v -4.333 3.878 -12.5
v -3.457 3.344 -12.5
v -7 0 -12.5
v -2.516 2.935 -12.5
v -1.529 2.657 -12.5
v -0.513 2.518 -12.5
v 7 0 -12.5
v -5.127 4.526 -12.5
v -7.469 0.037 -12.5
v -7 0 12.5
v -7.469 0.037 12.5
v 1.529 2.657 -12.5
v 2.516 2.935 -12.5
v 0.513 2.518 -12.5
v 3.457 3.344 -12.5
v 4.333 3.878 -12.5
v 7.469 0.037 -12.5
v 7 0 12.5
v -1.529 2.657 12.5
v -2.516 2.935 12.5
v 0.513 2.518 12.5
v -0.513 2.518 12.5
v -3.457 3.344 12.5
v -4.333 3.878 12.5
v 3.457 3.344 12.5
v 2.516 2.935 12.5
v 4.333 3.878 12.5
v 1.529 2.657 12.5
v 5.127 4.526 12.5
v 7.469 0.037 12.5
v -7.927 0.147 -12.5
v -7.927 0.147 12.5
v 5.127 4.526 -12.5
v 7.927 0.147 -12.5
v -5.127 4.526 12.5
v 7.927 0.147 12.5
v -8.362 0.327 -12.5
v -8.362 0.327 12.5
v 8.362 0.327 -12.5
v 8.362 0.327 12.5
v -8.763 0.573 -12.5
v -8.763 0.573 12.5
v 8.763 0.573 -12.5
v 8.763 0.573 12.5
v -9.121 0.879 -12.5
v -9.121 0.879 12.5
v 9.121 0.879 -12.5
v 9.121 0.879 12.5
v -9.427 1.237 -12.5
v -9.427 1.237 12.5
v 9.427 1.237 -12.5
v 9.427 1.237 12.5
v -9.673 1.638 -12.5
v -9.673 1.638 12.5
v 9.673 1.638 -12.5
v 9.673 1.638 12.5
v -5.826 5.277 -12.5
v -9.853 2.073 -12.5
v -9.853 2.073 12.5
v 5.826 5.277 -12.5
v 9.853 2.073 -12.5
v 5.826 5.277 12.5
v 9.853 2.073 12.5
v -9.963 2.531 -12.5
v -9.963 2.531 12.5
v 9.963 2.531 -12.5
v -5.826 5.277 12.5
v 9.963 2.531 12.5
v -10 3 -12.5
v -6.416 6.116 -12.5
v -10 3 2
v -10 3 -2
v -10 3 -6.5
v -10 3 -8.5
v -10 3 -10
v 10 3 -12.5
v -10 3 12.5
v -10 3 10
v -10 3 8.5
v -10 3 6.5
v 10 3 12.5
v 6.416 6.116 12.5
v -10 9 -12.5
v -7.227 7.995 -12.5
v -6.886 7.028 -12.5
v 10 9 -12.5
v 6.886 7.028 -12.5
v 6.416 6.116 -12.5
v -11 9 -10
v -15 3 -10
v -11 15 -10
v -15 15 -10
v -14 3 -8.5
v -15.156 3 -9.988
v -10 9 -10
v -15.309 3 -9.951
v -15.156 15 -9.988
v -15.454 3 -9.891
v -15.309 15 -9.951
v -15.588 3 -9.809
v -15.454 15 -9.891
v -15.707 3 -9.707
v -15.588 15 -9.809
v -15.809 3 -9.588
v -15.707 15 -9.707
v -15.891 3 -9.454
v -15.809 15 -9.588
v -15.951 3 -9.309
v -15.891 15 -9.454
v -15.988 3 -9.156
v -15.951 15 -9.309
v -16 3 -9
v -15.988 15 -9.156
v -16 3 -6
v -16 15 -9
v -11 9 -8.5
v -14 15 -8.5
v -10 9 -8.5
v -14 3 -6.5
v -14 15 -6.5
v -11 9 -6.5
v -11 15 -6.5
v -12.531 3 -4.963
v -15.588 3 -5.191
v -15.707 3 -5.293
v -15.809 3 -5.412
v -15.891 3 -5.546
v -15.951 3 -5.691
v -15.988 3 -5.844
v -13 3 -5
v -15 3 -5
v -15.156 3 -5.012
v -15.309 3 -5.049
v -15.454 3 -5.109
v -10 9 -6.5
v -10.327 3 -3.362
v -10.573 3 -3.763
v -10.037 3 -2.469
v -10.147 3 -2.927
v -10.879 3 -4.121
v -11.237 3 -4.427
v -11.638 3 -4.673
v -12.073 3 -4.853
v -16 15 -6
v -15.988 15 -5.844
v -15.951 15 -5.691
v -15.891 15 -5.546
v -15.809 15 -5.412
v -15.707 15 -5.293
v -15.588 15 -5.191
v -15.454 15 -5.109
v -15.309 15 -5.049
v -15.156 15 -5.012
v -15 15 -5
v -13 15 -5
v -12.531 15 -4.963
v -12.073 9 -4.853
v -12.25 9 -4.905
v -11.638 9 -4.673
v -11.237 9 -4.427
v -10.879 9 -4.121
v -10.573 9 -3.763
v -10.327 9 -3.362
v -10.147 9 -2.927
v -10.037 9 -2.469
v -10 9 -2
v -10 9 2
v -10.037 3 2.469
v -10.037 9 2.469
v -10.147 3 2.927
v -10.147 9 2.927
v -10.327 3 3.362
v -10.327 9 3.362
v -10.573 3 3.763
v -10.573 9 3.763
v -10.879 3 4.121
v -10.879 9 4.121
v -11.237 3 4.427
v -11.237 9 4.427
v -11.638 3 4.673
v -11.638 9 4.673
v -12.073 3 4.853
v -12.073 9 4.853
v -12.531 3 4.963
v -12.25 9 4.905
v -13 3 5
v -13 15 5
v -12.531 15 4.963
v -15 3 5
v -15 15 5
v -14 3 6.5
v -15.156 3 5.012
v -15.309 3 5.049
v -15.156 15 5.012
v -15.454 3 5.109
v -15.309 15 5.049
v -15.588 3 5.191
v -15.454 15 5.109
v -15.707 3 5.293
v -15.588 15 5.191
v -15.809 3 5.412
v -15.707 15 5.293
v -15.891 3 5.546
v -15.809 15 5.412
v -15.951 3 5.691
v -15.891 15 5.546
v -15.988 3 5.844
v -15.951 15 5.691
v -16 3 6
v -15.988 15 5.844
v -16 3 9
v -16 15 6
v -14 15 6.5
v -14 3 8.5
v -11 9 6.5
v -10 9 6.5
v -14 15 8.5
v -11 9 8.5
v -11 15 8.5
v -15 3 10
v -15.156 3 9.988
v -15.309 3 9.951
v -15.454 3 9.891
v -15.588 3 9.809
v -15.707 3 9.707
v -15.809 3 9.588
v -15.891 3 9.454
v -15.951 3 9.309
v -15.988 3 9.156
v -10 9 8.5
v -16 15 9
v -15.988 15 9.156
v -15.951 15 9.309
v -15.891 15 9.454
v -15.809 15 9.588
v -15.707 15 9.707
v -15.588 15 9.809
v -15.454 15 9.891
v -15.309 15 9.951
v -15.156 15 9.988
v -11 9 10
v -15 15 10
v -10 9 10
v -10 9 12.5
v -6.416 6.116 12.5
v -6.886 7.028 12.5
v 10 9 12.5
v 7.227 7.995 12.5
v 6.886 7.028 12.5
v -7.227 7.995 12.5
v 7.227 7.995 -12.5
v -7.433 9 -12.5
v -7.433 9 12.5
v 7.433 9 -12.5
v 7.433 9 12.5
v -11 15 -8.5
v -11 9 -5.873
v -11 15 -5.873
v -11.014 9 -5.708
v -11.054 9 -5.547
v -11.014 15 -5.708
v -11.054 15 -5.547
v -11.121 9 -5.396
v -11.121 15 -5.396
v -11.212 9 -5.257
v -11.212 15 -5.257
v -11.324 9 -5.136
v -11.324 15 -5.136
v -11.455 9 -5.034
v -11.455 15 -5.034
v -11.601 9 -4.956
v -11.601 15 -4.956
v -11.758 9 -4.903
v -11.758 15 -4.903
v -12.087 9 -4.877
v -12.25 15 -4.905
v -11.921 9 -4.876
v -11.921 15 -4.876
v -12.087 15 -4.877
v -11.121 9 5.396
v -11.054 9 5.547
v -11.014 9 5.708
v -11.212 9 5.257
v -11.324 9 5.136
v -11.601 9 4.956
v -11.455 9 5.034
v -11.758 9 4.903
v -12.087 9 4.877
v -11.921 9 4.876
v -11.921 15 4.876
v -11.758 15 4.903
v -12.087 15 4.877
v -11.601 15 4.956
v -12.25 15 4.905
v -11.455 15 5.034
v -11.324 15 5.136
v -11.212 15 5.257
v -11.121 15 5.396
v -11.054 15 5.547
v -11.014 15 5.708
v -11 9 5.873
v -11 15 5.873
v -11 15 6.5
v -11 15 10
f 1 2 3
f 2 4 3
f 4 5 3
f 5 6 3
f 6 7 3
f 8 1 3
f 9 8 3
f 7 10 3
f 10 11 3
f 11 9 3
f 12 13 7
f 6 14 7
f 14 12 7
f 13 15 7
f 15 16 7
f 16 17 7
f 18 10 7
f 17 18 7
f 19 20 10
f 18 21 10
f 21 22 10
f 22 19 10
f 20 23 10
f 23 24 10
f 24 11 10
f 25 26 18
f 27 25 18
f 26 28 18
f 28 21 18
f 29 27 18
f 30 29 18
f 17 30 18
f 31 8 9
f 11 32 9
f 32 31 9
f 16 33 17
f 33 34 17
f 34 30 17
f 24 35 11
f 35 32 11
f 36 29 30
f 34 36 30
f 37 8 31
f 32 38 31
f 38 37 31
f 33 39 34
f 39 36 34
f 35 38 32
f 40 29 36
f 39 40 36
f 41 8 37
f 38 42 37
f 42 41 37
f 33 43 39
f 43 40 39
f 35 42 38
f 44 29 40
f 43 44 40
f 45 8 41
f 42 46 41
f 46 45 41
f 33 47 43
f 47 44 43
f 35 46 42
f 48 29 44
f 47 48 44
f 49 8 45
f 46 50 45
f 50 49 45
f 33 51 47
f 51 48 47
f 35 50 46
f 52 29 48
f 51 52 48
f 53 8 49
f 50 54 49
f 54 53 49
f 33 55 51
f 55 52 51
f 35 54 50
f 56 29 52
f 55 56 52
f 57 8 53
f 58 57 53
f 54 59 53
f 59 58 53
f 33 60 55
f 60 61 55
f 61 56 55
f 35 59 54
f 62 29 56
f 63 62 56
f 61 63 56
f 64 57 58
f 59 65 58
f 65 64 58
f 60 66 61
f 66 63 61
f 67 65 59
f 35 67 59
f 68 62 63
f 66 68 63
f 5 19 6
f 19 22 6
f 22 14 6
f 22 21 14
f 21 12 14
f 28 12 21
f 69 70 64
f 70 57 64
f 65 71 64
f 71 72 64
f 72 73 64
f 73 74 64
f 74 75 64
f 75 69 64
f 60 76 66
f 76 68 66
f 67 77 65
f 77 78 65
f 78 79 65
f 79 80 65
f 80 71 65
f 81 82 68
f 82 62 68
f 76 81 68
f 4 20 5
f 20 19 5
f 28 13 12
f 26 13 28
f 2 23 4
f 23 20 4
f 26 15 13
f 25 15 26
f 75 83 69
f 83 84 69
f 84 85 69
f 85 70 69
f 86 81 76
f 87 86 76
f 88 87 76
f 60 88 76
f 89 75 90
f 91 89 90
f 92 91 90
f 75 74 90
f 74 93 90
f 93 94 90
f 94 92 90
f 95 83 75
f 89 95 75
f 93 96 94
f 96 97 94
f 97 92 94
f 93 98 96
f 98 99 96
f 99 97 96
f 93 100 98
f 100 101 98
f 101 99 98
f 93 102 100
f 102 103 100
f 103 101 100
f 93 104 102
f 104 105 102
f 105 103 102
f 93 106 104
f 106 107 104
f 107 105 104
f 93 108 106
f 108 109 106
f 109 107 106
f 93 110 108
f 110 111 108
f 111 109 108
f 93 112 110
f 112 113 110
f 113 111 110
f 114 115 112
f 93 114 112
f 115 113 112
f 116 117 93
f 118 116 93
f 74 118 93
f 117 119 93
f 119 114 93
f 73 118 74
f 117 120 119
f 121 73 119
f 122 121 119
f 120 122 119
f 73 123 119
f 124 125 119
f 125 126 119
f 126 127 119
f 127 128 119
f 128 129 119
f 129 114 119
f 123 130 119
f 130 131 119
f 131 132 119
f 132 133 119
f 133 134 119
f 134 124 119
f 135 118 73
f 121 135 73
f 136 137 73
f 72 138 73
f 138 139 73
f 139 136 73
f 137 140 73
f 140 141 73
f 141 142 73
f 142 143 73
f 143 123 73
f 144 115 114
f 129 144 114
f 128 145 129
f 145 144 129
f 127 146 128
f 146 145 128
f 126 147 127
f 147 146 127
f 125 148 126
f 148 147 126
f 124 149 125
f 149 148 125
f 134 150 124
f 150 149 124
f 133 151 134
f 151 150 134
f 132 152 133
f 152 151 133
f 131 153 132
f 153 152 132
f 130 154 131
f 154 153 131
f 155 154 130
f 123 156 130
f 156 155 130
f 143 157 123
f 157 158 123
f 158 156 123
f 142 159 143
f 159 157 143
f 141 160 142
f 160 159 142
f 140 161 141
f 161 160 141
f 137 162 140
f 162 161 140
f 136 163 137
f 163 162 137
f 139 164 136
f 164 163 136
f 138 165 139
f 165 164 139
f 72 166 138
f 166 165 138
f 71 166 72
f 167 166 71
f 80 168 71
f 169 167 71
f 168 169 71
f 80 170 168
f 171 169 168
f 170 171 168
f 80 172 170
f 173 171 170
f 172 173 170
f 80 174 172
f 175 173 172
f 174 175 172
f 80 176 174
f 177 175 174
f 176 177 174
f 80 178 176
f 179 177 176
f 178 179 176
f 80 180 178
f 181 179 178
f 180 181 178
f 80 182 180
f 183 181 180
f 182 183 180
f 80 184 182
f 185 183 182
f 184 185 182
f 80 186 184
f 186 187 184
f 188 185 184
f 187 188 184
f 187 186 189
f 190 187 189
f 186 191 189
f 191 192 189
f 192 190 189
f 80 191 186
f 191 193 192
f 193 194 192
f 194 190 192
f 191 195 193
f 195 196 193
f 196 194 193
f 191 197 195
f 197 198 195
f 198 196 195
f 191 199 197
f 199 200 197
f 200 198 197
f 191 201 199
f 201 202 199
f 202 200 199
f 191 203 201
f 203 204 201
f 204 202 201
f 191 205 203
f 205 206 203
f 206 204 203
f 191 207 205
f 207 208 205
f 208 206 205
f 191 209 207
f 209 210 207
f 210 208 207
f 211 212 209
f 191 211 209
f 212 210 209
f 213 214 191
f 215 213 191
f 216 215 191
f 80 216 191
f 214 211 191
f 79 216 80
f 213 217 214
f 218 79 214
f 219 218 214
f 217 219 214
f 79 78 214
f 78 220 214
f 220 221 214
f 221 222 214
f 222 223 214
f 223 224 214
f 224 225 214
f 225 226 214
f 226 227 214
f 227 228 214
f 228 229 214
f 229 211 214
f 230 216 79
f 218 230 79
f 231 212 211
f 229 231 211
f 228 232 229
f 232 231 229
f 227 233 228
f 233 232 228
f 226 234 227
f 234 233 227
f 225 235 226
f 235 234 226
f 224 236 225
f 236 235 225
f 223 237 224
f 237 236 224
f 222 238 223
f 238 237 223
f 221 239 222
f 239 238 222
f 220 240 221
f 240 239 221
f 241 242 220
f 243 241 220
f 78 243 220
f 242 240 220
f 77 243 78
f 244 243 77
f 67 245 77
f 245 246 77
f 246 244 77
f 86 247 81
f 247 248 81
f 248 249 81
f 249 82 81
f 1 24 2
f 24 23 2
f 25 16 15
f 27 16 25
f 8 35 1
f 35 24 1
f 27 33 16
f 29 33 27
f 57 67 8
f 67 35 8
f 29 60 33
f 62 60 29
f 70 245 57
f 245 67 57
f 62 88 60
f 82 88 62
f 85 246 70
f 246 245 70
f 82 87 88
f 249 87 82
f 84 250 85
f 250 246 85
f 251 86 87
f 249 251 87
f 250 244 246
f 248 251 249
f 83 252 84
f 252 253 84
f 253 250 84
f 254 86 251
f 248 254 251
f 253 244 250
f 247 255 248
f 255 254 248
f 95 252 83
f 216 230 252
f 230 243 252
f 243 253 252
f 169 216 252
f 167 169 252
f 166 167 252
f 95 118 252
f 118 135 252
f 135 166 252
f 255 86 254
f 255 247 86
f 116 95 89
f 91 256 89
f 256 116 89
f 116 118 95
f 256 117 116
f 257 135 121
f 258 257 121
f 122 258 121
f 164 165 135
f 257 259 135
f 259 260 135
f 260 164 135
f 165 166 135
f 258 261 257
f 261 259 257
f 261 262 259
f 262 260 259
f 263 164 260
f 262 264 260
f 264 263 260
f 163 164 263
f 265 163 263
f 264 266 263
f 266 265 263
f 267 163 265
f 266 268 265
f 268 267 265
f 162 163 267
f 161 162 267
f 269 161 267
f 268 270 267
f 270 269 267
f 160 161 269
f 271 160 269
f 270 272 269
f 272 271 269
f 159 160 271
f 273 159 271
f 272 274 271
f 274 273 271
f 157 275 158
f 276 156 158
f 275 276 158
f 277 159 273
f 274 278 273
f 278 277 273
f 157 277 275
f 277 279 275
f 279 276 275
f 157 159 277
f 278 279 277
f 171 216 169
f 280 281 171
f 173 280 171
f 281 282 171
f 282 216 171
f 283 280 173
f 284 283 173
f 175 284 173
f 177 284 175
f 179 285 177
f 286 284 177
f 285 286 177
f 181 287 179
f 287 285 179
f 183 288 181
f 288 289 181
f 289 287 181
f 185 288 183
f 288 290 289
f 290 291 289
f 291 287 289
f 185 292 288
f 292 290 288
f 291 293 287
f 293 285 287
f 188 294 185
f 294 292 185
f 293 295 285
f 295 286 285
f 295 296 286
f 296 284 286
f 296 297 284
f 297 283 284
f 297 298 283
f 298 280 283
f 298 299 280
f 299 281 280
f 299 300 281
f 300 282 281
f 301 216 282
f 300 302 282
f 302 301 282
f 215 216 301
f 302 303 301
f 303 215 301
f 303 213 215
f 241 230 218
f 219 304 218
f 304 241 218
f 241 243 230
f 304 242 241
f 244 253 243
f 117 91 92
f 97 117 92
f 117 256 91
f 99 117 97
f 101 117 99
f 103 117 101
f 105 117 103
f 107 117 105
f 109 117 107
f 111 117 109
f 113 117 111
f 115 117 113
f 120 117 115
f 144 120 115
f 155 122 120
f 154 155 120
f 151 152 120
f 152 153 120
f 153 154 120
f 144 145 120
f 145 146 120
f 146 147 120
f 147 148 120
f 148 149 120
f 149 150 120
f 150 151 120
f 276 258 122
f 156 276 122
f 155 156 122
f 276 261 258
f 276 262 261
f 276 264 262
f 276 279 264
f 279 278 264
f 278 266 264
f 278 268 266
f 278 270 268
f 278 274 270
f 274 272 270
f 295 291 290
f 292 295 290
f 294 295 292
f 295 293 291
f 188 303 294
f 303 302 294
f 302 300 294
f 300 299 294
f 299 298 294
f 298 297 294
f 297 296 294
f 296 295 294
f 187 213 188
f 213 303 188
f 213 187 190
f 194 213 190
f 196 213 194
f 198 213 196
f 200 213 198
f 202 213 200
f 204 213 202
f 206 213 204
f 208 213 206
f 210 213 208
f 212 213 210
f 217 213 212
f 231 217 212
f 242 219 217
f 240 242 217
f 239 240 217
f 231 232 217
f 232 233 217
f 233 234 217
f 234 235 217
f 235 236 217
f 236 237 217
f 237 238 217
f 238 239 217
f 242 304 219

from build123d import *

# Parameters (mm, degrees)
ESBO_O1_W                = 20
ESBO_O1_H                = 25
RESSALTO_EXTRUS_O1_DEPTH = 9
ESBO_O2_R                = 7.5
CORTE_EXTRUS_O1_DEPTH    = 29.390139133
FILETE1_R                = 3
RESSALTO_EXTRUS_O2_DEPTH = 6
RESSALTO_EXTRUS_O3_DEPTH = 6
FILETE3_R                = 1
FILETE5_R                = 3
FILETE6_R                = 1


with BuildPart() as part:
    # Esboço1 → Ressalto-extrusão1 (new body)
    with BuildSketch(Plane(origin=(0, 0, 0), x_dir=(1, 0, 0), z_dir=(0, 1, 0))):
        Rectangle(ESBO_O1_W, ESBO_O1_H)
    extrude(amount=RESSALTO_EXTRUS_O1_DEPTH)

    # Esboço2 → Corte-extrusão1 (cut, through all)
    with BuildSketch(Plane.XY.offset(12.5)):
        with Locations((0, 10)):
            Circle(ESBO_O2_R)
    extrude(amount=-CORTE_EXTRUS_O1_DEPTH, mode=Mode.SUBTRACT)

    # Filete1
    filete1_edges = [part.edges().sort_by_distance(p)[0] for p in [
        (-10, 0, 0),
        (10, 0, 0),
    ]]
    fillet(filete1_edges, radius=FILETE1_R)

    # Esboço3 → Ressalto-extrusão2 (add)
    with BuildSketch(Plane(origin=(0, 9, 0), x_dir=(1, 0, 0), z_dir=(0, 1, 0))):
        Polygon((-16, 10), (-10, 10), (-10, 8.5), (-14, 8.5), (-14, 6.5), (-10, 6.5), (-10, 5), (-16, 5), align=None)
        Polygon((-14, -6.5), (-10, -6.5), (-10, -5), (-16, -5), (-16, -10), (-10, -10), (-10, -8.5), (-14, -8.5), align=None)
    extrude(amount=-RESSALTO_EXTRUS_O2_DEPTH)

    # Esboço4 → Ressalto-extrusão3 (add)
    with BuildSketch(Plane(origin=(0, 9, 0), x_dir=(1, 0, 0), z_dir=(0, 1, 0))):
        Polygon((-16, -10), (-16, -5), (-11, -5), (-11, -6.5), (-14, -6.5), (-14, -8.5), (-11, -8.5), (-11, -10), align=None)
        Polygon((-11, 10), (-16, 10), (-16, 5), (-11, 5), (-11, 6.5), (-14, 6.5), (-14, 8.5), (-11, 8.5), align=None)
    extrude(amount=RESSALTO_EXTRUS_O3_DEPTH)

    # Filete3
    filete3_edges = [part.edges().sort_by_distance(p)[0] for p in [
        (-16, 9, -5),
        (-16, 9, -10),
        (-16, 9, 10),
        (-16, 9, 5),
    ]]
    fillet(filete3_edges, radius=FILETE3_R)

    # Filete5
    # the kernel refuses this fillet: 3 mm, written as the material it adds along each edge
    with BuildSketch(Plane(origin=(-10, 16.5, -5), x_dir=(-1, 0, 0), z_dir=(0, -1, 0))) as filete5_piece_1_section:
        with BuildLine():
            CenterArc((FILETE5_R, -FILETE5_R), FILETE5_R, 90, 90)
            Line((0, -FILETE5_R), (0, 0))
            Line((0, 0), (FILETE5_R, 0))
        make_face()
    filete5_piece_1 = extrude(amount=13.5, mode=Mode.PRIVATE)
    filete5_piece_1 = split(filete5_piece_1, bisect_by=Plane(origin=(-11.589070595, 9, -4.827479681), z_dir=(0, 1, 0)), keep=Keep.TOP, mode=Mode.PRIVATE)
    filete5_piece_1 = split(filete5_piece_1, bisect_by=Plane(origin=(-11, 12, -4.827479681), z_dir=(-1, 0, 0)), keep=Keep.TOP, mode=Mode.PRIVATE)
    filete5_piece_1 = split(filete5_piece_1, bisect_by=Plane(origin=(-11.589070595, 15, -4.827479681), z_dir=(0, -1, 0)), keep=Keep.TOP, mode=Mode.PRIVATE)
    add(filete5_piece_1)
    with BuildSketch(Plane(origin=(-10, 9, -5), x_dir=(-1, 0, 0), z_dir=(0, -1, 0))) as filete5_piece_2_section:
        with BuildLine():
            CenterArc((FILETE5_R, -FILETE5_R), FILETE5_R, 90, 90)
            Line((0, -FILETE5_R), (0, 0))
            Line((0, 0), (FILETE5_R, 0))
        make_face()
    filete5_piece_2 = extrude(amount=6, mode=Mode.PRIVATE)
    filete5_piece_2 = split(filete5_piece_2, bisect_by=Plane(origin=(-11, 6, -4.827479681), z_dir=(-1, 0, 0)), keep=Keep.TOP, mode=Mode.PRIVATE)
    add(filete5_piece_2)
    with BuildSketch(Plane(origin=(-10, 9, -5), x_dir=(-1, 0, 0), z_dir=(0, -1, 0))) as filete5_piece_3_section:
        with BuildLine():
            CenterArc((FILETE5_R, -FILETE5_R), FILETE5_R, 90, 90)
            Line((0, -FILETE5_R), (0, 0))
            Line((0, 0), (FILETE5_R, 0))
        make_face()
    filete5_piece_3 = extrude(amount=6, mode=Mode.PRIVATE)
    filete5_piece_3 = split(filete5_piece_3, bisect_by=Plane(origin=(-11, 6, -4.141402177), z_dir=(1, 0, 0)), keep=Keep.TOP, mode=Mode.PRIVATE)
    add(filete5_piece_3)
    with BuildSketch(Plane(origin=(-10, 16.5, 5), x_dir=(-1, 0, 0), z_dir=(0, -1, 0))) as filete5_piece_4_section:
        with BuildLine():
            CenterArc((FILETE5_R, FILETE5_R), FILETE5_R, 180, 90)
            Line((0, FILETE5_R), (0, 0))
            Line((0, 0), (FILETE5_R, 0))
        make_face()
    filete5_piece_4 = extrude(amount=13.5, mode=Mode.PRIVATE)
    filete5_piece_4 = split(filete5_piece_4, bisect_by=Plane(origin=(-11.589070595, 15, 4.827479681), z_dir=(0, -1, 0)), keep=Keep.TOP, mode=Mode.PRIVATE)
    filete5_piece_4 = split(filete5_piece_4, bisect_by=Plane(origin=(-11.589070595, 9, 4.827479681), z_dir=(0, 1, 0)), keep=Keep.TOP, mode=Mode.PRIVATE)
    filete5_piece_4 = split(filete5_piece_4, bisect_by=Plane(origin=(-11, 12, 4.827479681), z_dir=(-1, 0, 0)), keep=Keep.TOP, mode=Mode.PRIVATE)
    add(filete5_piece_4)
    with BuildSketch(Plane(origin=(-10, 9, 5), x_dir=(-1, 0, 0), z_dir=(0, -1, 0))) as filete5_piece_5_section:
        with BuildLine():
            CenterArc((FILETE5_R, FILETE5_R), FILETE5_R, 180, 90)
            Line((0, FILETE5_R), (0, 0))
            Line((0, 0), (FILETE5_R, 0))
        make_face()
    filete5_piece_5 = extrude(amount=6, mode=Mode.PRIVATE)
    filete5_piece_5 = split(filete5_piece_5, bisect_by=Plane(origin=(-11, 6, 4.827479681), z_dir=(-1, 0, 0)), keep=Keep.TOP, mode=Mode.PRIVATE)
    add(filete5_piece_5)
    with BuildSketch(Plane(origin=(-10, 9, 5), x_dir=(-1, 0, 0), z_dir=(0, -1, 0))) as filete5_piece_6_section:
        with BuildLine():
            CenterArc((FILETE5_R, FILETE5_R), FILETE5_R, 180, 90)
            Line((0, FILETE5_R), (0, 0))
            Line((0, 0), (FILETE5_R, 0))
        make_face()
    filete5_piece_6 = extrude(amount=6, mode=Mode.PRIVATE)
    filete5_piece_6 = split(filete5_piece_6, bisect_by=Plane(origin=(-11, 6, 4.141402177), z_dir=(1, 0, 0)), keep=Keep.TOP, mode=Mode.PRIVATE)
    add(filete5_piece_6)

    # Filete6
    filete6_edges = [part.edges().sort_by_distance(p)[0] for p in [
        (-11, 12, -4.236067977),
        (-11, 12, 4.236067977),
    ]]
    fillet(filete6_edges, radius=FILETE6_R)


solid = part.part
